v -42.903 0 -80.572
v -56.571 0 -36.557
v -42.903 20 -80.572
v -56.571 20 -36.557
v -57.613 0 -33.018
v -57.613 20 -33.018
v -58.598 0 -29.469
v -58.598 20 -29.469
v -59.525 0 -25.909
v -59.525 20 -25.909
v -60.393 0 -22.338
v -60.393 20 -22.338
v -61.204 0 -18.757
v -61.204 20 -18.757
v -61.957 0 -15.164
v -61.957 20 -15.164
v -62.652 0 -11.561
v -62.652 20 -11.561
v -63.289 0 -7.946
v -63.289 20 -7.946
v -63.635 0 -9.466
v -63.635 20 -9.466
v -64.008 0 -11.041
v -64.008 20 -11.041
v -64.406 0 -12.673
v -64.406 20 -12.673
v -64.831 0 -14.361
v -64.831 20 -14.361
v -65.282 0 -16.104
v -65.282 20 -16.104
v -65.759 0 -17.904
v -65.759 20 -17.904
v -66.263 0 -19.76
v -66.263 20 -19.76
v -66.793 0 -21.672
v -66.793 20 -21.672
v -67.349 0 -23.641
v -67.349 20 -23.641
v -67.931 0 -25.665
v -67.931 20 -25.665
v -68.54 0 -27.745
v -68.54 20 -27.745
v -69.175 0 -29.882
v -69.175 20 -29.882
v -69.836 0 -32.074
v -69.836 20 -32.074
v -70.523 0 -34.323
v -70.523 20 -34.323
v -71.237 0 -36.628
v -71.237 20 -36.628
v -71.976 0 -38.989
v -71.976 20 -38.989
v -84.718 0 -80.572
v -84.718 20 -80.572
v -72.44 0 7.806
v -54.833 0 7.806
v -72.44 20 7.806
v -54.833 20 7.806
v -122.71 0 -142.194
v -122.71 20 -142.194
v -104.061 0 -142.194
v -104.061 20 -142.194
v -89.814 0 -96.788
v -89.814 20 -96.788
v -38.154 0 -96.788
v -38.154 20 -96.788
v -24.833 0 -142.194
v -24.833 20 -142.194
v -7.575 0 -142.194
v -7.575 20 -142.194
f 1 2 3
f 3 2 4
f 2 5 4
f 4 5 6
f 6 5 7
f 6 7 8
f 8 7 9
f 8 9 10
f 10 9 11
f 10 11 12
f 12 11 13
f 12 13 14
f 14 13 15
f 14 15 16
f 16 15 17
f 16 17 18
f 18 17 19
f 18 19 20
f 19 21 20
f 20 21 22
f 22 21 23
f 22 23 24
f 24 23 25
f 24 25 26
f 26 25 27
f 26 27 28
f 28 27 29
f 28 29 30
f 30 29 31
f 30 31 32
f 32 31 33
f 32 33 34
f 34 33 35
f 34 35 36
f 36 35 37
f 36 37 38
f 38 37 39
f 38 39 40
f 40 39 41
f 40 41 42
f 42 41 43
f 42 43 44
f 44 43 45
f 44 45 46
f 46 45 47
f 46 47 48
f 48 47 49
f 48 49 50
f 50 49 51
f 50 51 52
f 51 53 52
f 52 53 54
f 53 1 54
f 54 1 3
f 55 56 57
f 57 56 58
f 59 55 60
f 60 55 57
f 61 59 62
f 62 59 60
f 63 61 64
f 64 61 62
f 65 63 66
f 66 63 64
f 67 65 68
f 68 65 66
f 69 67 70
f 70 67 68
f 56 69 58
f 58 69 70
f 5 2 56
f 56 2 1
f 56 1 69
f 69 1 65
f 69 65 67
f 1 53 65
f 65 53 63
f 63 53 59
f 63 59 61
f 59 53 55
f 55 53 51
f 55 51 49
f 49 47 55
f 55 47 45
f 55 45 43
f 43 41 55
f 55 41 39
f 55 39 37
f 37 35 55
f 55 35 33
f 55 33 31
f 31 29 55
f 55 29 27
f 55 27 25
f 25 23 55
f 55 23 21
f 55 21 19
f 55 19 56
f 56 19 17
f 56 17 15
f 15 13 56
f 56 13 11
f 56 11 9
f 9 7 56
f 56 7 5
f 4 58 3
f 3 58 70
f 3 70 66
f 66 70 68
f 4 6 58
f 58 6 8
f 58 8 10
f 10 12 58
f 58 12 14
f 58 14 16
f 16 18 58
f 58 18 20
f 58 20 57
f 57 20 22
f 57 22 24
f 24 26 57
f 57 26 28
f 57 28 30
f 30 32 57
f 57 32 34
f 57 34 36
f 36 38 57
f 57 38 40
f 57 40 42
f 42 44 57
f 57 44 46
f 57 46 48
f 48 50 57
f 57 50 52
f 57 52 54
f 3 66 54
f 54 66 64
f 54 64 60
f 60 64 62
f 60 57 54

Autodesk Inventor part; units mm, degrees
ref_plane "YZ Plane" through (0, 0, 0) normal (1, 0, 0) x (0, 1, 0)
ref_plane "XZ Plane" through (0, 0, 0) normal (0, 1, 0) x (-1, 0, 0)
ref_plane "XY Plane" through (0, 0, 0) normal (0, 0, 1) x (1, 0, 0)
sketch "Sketch1" plane through (0, 0, 0) normal (0, 1, 0) x (-1, 0, 0)
  line L0 (7.8064, 7.8064) -> (173.9884, 7.8064) construction
  line L1 (173.9884, 7.8064) -> (173.9884, -141.9122) construction
  line L2 (173.9884, -141.9122) -> (7.8064, -141.9122) construction
  line L3 (7.8064, -141.9122) -> (7.8064, 7.8064) construction
  line L4 (7.5748, -142.1936) -> (54.8334, 7.8064)
  line L5 (54.8334, 7.8064) -> (72.4396, 7.8064)
  line L6 (72.4396, 7.8064) -> (122.7099, -142.1936)
  line L7 (122.7099, -142.1936) -> (104.0612, -142.1936)
  line L8 (104.0612, -142.1936) -> (89.8141, -96.7882)
  line L9 (89.8141, -96.7882) -> (38.1539, -96.7882)
  line L10 (38.1539, -96.7882) -> (24.8334, -142.1936)
  line L11 (24.8334, -142.1936) -> (7.5748, -142.1936)
  line L12 (42.9029, -80.572) -> (84.7176, -80.572)
  line L13 (84.7176, -80.572) -> (71.9763, -38.989)
  spline S0 degree 2 poles (71.9763, -38.989) (65.9531, -19.877) (63.289, -7.9465) knots 0 0 0 1 1 1
  spline S1 degree 2 poles (63.289, -7.9465) (60.8566, -22.4252) (56.5709, -36.5565) knots 0 0 0 1 1 1
  line L14 (56.5709, -36.5565) -> (42.9029, -80.572)
  point P0 (0, 0)
extrude "Extrusion1" add sketch "Sketch1" along normal blind 20
properties part number "Letter_A"
